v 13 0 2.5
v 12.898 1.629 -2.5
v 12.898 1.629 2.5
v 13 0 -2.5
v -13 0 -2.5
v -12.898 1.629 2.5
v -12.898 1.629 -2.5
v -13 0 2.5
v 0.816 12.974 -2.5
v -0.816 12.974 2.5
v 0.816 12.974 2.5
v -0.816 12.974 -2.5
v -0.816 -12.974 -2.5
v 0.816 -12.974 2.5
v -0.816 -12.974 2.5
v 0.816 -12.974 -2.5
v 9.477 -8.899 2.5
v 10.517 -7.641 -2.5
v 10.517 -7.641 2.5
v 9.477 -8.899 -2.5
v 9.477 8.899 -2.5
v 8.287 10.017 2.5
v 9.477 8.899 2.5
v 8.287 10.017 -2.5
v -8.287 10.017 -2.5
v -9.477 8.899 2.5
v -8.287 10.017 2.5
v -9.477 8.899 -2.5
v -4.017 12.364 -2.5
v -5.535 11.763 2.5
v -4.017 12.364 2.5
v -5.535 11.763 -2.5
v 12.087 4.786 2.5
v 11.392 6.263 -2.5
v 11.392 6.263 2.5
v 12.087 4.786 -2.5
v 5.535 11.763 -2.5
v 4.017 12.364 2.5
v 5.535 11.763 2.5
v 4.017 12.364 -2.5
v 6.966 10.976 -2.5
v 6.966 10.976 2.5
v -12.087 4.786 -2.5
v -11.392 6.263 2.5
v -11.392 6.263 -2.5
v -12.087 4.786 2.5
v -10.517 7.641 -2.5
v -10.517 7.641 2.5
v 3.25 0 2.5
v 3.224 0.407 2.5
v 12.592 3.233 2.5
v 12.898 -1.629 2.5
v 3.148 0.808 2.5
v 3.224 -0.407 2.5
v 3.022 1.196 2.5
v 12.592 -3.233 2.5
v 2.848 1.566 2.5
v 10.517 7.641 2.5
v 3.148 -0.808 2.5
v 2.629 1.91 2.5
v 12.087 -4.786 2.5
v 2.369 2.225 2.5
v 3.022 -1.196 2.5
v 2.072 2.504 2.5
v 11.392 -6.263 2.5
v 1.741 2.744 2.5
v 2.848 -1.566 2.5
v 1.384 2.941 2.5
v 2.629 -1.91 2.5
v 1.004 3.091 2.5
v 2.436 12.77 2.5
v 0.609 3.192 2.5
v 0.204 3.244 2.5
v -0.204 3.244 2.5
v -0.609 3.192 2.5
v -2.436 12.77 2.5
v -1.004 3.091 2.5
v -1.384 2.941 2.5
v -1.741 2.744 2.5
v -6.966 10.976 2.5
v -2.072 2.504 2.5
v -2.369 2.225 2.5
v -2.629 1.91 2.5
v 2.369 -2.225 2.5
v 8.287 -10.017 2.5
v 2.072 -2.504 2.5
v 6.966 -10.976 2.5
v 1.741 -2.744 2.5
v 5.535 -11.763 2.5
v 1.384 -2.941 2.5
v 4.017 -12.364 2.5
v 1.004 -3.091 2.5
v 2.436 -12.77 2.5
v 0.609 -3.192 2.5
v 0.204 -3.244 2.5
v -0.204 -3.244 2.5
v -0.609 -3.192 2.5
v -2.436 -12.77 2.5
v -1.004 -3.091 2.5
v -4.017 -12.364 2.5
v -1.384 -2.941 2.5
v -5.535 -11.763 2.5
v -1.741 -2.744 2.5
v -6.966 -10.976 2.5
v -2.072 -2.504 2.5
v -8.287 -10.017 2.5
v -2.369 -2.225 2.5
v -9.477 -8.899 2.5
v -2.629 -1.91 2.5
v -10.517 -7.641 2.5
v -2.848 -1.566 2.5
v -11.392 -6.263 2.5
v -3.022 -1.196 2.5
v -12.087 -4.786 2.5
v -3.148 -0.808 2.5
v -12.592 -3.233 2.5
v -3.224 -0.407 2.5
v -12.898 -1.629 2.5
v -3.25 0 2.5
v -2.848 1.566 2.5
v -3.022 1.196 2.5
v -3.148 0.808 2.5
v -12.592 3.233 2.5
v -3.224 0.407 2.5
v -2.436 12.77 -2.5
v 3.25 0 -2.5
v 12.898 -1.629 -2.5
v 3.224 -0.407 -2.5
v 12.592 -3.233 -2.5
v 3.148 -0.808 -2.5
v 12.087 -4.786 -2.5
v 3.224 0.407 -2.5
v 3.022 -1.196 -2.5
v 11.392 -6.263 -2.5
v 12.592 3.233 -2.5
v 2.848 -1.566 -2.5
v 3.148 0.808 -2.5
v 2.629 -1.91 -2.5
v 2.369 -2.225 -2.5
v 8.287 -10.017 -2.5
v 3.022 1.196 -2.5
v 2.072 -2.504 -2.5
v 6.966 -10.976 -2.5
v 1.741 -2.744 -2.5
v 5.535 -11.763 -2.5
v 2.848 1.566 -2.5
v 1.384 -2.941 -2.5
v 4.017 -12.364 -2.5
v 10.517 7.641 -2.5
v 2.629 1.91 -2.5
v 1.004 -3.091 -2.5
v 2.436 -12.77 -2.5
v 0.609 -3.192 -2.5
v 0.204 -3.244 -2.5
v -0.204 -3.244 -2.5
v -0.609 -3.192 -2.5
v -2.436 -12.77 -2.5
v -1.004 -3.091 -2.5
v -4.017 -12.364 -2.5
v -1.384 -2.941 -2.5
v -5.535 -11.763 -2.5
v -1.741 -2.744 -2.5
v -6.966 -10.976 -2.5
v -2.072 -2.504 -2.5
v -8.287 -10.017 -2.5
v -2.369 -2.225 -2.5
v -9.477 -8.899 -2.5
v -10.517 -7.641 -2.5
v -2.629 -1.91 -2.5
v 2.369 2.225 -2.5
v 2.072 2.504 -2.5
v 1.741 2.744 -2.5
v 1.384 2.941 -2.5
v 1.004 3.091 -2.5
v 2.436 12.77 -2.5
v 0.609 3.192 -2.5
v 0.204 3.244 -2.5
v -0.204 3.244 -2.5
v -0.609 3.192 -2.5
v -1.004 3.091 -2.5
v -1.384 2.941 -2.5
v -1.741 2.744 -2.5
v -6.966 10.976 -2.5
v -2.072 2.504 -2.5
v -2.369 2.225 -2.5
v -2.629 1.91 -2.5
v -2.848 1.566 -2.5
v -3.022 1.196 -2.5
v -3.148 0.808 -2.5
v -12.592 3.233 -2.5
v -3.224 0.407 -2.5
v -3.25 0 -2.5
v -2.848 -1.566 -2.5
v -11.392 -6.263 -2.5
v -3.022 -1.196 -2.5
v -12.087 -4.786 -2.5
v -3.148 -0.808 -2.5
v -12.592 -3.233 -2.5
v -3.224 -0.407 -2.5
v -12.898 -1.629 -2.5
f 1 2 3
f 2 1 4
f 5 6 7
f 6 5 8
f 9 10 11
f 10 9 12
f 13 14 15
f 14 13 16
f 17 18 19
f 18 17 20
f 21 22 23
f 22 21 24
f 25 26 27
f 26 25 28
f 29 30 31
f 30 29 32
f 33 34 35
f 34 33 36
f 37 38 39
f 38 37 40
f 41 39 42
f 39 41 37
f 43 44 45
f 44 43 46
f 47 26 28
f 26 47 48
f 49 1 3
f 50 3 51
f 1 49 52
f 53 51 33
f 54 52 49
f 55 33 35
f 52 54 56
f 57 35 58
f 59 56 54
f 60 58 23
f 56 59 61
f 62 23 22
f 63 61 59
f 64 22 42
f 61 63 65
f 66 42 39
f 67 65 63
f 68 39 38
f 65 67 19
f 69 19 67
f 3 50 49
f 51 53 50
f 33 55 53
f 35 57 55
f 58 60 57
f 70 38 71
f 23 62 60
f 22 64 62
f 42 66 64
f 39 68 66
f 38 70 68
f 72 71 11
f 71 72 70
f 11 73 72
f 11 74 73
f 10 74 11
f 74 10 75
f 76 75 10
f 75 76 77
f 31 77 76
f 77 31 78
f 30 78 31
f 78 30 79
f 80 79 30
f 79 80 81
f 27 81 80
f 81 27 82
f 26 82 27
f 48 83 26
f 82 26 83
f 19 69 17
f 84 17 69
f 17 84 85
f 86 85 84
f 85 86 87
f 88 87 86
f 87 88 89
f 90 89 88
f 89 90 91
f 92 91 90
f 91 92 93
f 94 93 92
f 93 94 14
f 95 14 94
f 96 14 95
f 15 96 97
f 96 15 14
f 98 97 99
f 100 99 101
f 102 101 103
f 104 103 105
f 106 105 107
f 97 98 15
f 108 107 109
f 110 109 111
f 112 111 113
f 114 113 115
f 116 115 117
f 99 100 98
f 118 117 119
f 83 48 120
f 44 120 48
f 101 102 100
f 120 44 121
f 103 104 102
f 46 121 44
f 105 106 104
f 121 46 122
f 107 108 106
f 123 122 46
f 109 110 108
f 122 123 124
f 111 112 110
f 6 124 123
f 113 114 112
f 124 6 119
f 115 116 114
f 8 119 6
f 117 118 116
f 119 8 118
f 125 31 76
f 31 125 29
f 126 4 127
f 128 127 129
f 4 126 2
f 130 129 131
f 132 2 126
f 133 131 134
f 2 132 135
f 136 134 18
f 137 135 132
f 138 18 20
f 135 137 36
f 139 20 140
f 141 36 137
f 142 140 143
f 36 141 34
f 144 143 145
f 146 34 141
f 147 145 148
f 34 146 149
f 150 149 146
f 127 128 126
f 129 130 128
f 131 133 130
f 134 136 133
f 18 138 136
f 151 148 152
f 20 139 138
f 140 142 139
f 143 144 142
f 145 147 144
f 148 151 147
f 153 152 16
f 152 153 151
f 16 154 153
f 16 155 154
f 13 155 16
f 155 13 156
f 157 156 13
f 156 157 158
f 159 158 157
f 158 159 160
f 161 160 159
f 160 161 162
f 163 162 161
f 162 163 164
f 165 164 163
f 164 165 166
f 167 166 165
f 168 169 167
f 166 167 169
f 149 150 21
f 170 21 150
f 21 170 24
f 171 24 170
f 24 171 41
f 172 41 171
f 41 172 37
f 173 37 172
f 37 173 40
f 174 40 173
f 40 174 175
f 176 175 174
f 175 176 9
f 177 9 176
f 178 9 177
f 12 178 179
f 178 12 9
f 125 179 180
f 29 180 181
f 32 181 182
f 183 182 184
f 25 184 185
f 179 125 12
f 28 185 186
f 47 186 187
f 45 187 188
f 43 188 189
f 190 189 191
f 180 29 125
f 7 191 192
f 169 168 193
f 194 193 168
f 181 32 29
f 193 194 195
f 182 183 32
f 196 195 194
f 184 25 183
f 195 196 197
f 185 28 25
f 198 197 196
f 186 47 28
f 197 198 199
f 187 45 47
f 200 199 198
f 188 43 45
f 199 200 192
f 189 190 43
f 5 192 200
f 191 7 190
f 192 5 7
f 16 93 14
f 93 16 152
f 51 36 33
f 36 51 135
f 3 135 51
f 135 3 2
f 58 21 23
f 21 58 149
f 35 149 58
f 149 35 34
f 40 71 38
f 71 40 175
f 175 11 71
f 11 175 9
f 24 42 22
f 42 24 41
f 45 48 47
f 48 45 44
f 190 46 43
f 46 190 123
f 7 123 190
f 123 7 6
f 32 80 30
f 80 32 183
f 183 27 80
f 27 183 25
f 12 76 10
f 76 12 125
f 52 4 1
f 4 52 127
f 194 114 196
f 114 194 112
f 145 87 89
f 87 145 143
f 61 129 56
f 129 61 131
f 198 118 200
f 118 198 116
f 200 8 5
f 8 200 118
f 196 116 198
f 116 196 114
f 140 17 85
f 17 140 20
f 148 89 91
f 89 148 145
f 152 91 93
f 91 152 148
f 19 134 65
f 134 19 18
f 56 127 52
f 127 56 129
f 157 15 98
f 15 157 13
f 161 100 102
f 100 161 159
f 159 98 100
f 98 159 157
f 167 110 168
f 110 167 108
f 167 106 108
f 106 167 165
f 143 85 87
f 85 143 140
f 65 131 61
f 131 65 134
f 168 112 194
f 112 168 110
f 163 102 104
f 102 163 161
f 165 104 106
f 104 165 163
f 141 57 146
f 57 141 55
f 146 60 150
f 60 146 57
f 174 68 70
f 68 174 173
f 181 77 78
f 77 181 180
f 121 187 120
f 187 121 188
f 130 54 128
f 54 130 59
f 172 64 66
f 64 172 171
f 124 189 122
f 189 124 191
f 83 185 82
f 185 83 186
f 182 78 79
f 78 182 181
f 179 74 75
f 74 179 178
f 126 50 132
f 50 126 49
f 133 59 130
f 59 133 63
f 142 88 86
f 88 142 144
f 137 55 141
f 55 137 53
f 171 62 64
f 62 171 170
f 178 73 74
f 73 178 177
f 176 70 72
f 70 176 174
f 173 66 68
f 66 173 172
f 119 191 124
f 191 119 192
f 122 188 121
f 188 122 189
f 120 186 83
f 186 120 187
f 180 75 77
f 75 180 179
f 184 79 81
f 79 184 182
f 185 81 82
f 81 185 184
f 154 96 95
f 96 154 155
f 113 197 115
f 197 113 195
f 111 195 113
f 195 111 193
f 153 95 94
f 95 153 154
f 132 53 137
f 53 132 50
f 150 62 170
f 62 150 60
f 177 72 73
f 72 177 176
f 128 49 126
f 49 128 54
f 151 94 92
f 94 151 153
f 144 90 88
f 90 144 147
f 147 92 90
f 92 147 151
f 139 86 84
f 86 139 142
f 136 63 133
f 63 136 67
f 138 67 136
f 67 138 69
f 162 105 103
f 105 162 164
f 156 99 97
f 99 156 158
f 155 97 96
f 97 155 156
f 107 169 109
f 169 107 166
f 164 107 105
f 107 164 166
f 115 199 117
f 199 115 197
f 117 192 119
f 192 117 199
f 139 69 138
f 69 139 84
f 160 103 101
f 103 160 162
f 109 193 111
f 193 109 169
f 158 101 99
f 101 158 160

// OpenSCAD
$fn = 50;


difference() {
	union() {
		translate(v = [0, 0, -2.5000000000]) {
			cylinder(h = 5, r = 13.0000000000);
		}
	}
	union() {
		translate(v = [0, 0, -100.0000000000]) {
			cylinder(h = 200, r = 3.2500000000);
		}
	}
}
